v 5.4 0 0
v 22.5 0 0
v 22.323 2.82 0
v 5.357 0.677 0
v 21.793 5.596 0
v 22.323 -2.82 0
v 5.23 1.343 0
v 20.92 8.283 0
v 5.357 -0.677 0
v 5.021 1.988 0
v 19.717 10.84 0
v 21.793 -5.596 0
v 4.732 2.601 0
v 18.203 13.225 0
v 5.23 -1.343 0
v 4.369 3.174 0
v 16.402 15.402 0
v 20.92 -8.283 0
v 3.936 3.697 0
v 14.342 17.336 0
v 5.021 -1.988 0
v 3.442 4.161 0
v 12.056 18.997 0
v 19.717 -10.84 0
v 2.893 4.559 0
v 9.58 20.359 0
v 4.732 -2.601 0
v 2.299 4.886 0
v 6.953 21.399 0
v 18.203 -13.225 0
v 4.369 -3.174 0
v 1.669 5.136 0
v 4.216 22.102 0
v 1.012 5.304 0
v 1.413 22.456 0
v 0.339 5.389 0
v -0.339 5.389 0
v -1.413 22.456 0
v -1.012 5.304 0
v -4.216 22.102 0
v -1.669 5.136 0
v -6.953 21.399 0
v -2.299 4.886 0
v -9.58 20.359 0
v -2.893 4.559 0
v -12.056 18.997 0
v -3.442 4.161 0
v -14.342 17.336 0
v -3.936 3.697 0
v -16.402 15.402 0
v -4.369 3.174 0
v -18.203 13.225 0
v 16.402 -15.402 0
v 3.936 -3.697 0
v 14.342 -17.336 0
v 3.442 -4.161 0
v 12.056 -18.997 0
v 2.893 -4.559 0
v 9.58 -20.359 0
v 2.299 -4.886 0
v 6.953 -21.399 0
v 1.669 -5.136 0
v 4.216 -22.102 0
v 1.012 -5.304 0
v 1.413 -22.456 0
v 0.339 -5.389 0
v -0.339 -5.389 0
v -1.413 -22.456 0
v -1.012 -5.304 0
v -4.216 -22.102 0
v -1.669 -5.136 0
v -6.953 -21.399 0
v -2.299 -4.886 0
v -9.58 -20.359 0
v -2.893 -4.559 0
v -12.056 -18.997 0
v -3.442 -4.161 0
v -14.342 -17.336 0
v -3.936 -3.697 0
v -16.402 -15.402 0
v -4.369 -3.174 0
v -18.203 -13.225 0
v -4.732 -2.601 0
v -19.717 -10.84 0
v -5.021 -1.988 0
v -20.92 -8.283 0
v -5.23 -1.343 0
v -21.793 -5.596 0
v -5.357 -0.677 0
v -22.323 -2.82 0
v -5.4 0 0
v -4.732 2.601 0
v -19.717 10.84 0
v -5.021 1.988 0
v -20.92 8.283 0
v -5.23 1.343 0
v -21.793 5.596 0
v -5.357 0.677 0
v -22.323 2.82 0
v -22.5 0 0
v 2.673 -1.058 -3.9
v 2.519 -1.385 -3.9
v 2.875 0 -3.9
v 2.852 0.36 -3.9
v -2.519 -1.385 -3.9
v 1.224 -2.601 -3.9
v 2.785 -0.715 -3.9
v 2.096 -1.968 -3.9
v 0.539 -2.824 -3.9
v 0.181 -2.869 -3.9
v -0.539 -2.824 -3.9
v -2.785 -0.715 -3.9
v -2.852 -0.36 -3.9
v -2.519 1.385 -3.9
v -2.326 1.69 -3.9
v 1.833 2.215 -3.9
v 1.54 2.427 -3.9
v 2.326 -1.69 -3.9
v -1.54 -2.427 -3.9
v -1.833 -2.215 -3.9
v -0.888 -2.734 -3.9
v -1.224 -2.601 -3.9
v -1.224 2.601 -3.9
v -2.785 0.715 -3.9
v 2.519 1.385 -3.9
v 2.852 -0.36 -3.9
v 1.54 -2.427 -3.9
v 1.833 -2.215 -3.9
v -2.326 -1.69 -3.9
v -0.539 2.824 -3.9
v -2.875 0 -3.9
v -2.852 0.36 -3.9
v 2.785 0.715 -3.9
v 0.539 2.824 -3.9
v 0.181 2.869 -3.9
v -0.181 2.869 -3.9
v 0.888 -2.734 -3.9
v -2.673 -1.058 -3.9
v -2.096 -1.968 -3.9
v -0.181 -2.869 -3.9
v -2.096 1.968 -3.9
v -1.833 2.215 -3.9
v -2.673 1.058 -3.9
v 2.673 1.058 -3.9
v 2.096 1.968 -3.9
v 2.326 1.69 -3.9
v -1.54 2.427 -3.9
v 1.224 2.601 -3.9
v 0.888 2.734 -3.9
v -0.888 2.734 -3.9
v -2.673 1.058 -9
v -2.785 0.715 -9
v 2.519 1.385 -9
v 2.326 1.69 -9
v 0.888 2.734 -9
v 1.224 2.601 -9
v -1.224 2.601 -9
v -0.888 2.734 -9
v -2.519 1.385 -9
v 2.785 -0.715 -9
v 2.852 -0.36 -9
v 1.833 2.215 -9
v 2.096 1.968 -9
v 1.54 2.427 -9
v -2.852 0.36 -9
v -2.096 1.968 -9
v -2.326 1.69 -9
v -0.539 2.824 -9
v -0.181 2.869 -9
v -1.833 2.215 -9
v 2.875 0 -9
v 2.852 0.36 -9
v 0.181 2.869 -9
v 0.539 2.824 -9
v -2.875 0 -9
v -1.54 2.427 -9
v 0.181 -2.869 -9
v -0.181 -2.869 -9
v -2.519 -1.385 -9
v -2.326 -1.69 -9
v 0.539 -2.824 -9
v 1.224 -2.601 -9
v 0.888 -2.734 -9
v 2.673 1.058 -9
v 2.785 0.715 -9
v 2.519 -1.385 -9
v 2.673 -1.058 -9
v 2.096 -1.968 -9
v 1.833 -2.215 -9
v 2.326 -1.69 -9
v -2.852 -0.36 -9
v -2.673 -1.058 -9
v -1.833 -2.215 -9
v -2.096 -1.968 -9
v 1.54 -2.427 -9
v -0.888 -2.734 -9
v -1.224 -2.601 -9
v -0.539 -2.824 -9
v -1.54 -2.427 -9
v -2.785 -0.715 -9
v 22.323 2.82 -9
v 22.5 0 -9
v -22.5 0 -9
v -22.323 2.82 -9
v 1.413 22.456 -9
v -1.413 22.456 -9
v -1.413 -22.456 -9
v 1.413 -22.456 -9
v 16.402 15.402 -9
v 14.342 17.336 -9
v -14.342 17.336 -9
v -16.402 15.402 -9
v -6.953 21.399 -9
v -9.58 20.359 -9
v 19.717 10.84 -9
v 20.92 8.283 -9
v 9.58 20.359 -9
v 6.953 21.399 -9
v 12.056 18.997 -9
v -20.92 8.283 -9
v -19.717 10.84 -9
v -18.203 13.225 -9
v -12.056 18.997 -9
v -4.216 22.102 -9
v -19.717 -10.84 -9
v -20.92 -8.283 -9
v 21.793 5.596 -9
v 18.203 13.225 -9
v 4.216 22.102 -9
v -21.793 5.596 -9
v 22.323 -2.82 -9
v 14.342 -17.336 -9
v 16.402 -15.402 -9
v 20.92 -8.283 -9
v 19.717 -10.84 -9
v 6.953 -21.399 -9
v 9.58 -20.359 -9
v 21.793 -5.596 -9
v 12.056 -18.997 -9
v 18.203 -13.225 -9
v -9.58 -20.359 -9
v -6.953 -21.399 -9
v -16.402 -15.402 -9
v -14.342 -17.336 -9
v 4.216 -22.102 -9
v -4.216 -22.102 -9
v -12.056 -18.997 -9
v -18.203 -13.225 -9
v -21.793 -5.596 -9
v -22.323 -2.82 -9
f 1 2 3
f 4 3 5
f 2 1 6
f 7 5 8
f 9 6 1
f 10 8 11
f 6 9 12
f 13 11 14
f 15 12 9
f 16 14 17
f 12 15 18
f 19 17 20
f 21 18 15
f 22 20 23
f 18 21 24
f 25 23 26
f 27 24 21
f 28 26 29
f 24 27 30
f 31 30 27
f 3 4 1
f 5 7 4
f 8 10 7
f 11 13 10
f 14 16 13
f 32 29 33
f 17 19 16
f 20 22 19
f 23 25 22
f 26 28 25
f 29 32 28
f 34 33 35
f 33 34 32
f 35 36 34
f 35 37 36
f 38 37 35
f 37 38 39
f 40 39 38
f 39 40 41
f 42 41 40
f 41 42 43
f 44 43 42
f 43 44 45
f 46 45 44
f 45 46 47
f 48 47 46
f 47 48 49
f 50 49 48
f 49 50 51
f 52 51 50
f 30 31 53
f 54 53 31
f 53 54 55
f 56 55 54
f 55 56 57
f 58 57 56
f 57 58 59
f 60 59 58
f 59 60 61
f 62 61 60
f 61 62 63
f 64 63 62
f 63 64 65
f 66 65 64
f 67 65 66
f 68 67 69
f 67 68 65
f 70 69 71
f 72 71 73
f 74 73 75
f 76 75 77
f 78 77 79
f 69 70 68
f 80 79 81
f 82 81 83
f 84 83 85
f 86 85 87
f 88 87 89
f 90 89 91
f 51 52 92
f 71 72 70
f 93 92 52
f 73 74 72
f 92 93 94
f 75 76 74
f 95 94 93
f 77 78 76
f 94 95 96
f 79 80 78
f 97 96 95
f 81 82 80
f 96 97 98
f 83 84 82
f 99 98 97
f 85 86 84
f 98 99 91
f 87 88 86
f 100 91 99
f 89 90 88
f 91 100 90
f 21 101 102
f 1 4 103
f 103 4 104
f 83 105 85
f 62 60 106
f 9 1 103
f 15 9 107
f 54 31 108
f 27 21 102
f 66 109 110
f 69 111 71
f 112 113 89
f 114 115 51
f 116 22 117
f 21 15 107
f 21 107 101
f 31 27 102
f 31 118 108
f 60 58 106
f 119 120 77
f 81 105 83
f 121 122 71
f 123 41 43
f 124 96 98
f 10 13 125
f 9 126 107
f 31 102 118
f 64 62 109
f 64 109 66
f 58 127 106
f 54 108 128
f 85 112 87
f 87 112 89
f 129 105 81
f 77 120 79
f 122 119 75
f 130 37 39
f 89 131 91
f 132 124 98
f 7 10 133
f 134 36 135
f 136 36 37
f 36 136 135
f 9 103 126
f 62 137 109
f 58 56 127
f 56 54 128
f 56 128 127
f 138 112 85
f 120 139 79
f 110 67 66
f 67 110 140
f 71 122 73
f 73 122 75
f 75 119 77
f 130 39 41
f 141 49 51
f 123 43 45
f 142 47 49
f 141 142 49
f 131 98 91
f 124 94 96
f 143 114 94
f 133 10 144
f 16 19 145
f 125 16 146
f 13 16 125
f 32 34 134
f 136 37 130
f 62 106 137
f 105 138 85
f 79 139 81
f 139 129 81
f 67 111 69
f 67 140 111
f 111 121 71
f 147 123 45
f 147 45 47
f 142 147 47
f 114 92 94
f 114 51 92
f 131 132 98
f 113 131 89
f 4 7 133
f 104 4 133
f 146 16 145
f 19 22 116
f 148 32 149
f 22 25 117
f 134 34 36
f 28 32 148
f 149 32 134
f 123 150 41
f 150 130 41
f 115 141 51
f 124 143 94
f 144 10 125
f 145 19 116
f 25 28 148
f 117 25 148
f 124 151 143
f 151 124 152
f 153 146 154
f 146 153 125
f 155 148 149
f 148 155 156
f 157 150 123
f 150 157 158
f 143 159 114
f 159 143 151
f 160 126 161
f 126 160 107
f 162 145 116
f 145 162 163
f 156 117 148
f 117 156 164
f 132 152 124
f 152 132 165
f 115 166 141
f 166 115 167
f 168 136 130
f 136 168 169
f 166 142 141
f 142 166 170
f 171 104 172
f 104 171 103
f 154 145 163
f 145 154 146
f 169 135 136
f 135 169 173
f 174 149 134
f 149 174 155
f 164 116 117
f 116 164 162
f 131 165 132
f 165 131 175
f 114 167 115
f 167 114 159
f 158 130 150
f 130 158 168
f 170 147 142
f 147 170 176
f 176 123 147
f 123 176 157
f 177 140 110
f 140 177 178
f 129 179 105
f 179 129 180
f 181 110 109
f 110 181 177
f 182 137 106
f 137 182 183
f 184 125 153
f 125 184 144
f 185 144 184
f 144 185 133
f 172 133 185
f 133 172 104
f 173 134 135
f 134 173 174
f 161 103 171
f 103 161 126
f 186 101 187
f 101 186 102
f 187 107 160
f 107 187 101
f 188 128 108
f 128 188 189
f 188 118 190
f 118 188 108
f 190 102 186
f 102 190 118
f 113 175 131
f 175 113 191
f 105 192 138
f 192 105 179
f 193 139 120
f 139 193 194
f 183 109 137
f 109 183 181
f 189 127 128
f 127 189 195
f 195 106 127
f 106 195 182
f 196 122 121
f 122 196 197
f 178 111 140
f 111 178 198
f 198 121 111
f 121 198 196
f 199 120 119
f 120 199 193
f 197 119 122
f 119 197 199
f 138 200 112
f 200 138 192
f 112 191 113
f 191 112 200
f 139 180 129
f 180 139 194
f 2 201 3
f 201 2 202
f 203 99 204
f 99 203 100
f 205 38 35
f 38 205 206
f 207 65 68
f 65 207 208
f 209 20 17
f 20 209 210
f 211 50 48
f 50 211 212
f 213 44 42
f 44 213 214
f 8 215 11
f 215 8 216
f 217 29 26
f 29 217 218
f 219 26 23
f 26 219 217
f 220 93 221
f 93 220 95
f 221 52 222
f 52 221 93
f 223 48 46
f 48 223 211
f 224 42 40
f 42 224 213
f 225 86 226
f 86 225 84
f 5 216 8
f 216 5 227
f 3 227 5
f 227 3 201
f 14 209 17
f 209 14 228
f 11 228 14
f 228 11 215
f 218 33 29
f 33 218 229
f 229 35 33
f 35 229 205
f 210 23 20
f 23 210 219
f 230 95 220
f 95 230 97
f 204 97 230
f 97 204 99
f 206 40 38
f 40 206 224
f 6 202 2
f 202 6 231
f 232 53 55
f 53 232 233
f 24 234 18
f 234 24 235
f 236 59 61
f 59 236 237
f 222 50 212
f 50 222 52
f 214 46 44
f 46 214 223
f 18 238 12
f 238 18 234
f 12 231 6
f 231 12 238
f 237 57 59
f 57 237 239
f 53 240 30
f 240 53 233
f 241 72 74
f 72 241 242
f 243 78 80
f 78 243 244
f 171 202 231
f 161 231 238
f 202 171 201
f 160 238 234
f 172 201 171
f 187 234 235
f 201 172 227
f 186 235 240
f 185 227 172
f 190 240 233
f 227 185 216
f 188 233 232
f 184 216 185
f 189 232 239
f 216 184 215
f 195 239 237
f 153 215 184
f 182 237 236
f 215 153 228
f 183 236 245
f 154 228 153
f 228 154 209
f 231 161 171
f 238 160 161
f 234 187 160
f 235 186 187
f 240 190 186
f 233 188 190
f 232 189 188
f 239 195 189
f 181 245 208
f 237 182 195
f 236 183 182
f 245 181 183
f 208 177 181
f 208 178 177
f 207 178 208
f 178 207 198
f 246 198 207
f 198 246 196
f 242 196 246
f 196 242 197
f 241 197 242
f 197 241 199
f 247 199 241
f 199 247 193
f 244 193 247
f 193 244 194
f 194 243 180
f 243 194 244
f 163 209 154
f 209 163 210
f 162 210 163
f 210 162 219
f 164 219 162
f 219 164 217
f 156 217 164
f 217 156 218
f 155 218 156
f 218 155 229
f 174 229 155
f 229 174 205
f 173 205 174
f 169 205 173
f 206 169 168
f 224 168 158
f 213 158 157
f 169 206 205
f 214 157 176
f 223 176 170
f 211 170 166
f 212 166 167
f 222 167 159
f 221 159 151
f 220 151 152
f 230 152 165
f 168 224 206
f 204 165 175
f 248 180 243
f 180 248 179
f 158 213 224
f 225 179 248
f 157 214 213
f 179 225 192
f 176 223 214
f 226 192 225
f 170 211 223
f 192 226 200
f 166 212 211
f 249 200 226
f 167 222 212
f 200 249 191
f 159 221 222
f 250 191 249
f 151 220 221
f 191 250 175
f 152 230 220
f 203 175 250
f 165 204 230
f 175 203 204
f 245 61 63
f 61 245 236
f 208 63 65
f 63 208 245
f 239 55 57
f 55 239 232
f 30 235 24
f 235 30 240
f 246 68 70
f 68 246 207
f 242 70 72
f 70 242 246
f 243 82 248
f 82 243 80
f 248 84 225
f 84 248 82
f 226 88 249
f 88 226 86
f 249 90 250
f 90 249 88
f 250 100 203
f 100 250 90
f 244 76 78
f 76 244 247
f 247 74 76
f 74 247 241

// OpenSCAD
$fn = 50;


difference() {
	union() {
		translate(v = [0, 0, -9.0000000000]) {
			cylinder(h = 9, r = 22.5000000000);
		}
	}
	union() {
		translate(v = [0, 0, 0]) {
			rotate(a = [0, 0, 0]) {
				difference() {
					union() {
						translate(v = [0, 0, -12.0000000000]) {
							cylinder(h = 12, r = 2.6000000000);
						}
						translate(v = [0, 0, -3.9000000000]) {
							cylinder(h = 3.9000000000, r1 = 2.8750000000, r2 = 5.4000000000);
						}
						translate(v = [0, 0, -12.0000000000]) {
							cylinder(h = 12, r = 2.8750000000);
						}
						translate(v = [0, 0, -12.0000000000]) {
							cylinder(h = 12, r = 2.6000000000);
						}
					}
					union();
				}
			}
		}
	}
}
